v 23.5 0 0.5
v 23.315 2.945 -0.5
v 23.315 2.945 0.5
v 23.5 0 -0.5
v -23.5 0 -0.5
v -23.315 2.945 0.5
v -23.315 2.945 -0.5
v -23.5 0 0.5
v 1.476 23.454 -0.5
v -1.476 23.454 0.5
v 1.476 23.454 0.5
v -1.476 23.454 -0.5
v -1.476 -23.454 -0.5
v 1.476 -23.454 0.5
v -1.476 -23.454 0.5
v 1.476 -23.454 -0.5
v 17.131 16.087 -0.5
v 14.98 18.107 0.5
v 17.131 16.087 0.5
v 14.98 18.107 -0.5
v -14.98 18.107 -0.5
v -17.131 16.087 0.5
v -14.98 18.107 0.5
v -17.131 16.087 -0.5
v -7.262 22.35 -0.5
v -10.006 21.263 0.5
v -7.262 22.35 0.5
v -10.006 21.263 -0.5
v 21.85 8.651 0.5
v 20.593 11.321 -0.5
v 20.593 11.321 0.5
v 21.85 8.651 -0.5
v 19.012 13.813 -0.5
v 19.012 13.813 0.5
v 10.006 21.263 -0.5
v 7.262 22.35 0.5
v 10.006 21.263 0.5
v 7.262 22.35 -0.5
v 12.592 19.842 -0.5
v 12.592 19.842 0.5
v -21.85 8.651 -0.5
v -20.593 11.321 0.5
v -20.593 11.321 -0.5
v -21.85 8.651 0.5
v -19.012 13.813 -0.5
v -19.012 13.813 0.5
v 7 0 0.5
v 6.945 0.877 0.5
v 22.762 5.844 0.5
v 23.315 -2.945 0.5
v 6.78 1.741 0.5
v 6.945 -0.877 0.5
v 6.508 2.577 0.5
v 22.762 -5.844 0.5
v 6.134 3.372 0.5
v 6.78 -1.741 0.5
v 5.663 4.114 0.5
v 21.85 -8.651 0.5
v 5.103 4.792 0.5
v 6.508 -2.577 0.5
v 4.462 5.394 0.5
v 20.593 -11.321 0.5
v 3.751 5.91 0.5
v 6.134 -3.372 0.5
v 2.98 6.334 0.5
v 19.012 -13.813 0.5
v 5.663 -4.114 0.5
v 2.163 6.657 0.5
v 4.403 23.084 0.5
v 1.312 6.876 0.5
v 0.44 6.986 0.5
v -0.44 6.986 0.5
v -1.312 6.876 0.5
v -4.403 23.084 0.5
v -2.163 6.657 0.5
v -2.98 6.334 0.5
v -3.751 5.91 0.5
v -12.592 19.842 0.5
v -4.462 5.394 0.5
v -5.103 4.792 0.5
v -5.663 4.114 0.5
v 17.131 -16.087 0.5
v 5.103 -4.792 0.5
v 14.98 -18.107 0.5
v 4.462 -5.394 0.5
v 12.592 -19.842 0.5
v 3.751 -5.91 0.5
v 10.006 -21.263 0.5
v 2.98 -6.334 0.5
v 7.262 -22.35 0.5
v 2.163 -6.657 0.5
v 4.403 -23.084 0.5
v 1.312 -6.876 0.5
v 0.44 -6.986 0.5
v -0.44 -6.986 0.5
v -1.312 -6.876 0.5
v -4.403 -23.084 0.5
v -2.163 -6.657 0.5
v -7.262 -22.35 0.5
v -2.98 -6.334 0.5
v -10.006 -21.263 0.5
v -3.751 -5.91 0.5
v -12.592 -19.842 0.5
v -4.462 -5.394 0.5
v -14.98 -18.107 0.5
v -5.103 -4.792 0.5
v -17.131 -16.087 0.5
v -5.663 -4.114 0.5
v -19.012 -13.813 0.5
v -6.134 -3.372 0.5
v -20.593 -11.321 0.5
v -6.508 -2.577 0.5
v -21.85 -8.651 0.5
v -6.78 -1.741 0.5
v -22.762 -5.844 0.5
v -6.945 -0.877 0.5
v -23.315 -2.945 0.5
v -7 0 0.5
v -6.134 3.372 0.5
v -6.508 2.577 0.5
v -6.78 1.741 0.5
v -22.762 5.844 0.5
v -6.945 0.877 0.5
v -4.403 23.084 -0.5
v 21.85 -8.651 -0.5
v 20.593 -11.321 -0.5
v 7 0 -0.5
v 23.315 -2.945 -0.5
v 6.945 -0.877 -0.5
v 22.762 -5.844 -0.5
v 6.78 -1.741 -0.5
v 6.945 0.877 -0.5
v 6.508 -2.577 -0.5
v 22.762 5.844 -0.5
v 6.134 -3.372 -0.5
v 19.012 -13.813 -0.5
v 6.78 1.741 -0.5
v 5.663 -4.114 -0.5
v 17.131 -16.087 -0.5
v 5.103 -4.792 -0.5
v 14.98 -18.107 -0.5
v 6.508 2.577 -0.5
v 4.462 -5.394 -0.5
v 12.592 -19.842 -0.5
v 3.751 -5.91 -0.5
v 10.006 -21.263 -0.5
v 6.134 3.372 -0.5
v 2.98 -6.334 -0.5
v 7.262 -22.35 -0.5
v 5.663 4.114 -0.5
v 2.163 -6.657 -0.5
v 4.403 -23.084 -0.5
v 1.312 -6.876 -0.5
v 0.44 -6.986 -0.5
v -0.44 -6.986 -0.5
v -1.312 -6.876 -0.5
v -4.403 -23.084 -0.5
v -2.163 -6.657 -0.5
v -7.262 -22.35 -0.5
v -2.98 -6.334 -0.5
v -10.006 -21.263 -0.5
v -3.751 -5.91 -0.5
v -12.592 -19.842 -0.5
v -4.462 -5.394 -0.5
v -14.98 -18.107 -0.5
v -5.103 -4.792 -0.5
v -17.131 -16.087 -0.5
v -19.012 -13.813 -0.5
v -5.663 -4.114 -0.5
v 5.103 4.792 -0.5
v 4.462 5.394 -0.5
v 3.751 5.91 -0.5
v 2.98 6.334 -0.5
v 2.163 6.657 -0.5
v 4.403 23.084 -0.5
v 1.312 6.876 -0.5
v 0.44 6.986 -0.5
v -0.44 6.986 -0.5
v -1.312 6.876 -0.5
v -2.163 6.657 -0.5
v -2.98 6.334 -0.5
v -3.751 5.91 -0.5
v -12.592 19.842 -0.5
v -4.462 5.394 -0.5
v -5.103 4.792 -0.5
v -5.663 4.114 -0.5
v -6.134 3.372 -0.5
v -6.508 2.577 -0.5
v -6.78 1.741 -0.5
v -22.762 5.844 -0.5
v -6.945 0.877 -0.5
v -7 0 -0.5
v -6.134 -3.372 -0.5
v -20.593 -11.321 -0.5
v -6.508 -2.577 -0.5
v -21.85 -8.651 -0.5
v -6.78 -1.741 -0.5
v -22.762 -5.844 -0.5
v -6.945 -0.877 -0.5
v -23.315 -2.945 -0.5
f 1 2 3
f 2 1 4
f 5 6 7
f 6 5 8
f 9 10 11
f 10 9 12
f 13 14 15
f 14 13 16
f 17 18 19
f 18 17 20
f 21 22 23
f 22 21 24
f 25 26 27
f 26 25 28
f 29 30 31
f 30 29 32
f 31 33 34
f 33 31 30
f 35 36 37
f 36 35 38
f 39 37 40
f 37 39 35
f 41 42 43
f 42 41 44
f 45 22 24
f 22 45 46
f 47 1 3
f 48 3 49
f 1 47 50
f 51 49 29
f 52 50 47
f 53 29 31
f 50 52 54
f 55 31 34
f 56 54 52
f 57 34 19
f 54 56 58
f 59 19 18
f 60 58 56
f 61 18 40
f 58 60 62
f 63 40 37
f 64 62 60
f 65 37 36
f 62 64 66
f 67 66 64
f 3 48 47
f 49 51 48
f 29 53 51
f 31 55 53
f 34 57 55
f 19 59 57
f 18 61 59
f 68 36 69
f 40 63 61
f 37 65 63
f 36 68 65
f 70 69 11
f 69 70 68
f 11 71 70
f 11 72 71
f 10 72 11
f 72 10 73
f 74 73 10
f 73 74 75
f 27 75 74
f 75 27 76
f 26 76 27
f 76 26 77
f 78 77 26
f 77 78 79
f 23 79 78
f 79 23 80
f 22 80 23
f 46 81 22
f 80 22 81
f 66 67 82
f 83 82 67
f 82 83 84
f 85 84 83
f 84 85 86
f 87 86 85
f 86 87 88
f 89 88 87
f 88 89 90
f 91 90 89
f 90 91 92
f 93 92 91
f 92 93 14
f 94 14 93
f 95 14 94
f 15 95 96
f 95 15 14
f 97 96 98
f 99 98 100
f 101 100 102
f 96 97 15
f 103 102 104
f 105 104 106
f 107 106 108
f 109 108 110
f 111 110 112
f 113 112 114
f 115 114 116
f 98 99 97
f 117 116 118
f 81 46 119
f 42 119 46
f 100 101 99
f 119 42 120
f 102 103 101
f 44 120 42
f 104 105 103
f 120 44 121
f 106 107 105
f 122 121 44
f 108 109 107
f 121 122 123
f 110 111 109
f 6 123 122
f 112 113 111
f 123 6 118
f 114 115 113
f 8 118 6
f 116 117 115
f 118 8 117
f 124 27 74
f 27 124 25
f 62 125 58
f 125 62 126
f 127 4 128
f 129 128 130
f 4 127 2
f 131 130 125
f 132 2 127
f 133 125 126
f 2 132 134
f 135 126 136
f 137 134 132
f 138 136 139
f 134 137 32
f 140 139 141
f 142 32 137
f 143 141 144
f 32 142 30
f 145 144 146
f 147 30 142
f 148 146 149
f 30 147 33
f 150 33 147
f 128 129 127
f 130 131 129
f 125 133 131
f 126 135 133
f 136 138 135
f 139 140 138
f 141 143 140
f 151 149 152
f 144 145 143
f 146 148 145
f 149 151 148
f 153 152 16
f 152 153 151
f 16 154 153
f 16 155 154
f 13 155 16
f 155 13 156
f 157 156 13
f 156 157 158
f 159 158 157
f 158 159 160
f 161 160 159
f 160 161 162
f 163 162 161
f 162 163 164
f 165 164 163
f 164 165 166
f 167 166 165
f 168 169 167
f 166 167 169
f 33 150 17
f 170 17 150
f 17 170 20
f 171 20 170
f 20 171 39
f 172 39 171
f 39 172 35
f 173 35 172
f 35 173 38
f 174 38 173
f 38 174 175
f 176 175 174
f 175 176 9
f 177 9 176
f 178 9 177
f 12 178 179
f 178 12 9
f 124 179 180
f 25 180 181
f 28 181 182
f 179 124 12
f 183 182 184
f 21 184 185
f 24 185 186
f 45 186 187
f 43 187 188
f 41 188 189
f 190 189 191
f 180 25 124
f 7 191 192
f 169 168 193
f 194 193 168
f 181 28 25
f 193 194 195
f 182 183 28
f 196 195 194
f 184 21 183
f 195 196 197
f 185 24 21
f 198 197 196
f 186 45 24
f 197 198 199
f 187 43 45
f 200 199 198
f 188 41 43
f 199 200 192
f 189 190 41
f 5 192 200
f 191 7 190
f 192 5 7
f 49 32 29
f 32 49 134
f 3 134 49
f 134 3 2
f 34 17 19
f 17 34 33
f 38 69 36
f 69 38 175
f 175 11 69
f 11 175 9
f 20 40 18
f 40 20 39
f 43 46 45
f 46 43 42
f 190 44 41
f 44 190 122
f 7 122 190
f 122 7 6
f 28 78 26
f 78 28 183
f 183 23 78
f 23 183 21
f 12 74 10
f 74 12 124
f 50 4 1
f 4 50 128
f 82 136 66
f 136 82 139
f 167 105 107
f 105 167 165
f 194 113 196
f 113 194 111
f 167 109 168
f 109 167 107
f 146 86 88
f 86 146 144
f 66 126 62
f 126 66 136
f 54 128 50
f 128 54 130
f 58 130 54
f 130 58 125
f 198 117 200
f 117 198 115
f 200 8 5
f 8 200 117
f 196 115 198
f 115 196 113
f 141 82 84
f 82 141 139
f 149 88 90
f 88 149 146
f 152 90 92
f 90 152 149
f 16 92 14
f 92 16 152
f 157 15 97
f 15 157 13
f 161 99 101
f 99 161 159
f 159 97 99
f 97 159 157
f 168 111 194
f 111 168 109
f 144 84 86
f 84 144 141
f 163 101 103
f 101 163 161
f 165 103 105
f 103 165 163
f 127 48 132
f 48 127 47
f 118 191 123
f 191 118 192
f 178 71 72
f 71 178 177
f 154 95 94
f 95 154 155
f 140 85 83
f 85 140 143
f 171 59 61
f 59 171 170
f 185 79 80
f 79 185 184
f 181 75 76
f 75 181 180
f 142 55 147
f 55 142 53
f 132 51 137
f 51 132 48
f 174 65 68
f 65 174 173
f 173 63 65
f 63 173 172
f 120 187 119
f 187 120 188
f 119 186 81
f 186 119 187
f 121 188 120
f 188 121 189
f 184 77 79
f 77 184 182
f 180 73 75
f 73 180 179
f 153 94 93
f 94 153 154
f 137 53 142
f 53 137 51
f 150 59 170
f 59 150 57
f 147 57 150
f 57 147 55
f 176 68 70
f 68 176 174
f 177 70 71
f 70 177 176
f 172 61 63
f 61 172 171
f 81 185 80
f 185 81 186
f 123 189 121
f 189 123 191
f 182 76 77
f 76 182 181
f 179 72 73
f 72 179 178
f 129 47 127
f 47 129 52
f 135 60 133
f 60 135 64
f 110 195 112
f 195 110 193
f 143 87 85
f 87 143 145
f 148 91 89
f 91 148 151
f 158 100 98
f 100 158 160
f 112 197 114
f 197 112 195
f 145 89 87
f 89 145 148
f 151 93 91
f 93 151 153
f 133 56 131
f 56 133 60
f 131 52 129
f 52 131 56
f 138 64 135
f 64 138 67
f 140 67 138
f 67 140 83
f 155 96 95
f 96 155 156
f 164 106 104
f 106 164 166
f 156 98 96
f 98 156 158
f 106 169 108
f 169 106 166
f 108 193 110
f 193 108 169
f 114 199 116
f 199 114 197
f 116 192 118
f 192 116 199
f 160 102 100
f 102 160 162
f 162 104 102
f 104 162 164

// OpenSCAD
$fn = 50;


difference() {
	union() {
		translate(v = [0, 0, -0.5000000000]) {
			cylinder(h = 1, r = 23.5000000000);
		}
	}
	union() {
		translate(v = [0, 0, -100.0000000000]) {
			cylinder(h = 200, r = 7);
		}
	}
}
